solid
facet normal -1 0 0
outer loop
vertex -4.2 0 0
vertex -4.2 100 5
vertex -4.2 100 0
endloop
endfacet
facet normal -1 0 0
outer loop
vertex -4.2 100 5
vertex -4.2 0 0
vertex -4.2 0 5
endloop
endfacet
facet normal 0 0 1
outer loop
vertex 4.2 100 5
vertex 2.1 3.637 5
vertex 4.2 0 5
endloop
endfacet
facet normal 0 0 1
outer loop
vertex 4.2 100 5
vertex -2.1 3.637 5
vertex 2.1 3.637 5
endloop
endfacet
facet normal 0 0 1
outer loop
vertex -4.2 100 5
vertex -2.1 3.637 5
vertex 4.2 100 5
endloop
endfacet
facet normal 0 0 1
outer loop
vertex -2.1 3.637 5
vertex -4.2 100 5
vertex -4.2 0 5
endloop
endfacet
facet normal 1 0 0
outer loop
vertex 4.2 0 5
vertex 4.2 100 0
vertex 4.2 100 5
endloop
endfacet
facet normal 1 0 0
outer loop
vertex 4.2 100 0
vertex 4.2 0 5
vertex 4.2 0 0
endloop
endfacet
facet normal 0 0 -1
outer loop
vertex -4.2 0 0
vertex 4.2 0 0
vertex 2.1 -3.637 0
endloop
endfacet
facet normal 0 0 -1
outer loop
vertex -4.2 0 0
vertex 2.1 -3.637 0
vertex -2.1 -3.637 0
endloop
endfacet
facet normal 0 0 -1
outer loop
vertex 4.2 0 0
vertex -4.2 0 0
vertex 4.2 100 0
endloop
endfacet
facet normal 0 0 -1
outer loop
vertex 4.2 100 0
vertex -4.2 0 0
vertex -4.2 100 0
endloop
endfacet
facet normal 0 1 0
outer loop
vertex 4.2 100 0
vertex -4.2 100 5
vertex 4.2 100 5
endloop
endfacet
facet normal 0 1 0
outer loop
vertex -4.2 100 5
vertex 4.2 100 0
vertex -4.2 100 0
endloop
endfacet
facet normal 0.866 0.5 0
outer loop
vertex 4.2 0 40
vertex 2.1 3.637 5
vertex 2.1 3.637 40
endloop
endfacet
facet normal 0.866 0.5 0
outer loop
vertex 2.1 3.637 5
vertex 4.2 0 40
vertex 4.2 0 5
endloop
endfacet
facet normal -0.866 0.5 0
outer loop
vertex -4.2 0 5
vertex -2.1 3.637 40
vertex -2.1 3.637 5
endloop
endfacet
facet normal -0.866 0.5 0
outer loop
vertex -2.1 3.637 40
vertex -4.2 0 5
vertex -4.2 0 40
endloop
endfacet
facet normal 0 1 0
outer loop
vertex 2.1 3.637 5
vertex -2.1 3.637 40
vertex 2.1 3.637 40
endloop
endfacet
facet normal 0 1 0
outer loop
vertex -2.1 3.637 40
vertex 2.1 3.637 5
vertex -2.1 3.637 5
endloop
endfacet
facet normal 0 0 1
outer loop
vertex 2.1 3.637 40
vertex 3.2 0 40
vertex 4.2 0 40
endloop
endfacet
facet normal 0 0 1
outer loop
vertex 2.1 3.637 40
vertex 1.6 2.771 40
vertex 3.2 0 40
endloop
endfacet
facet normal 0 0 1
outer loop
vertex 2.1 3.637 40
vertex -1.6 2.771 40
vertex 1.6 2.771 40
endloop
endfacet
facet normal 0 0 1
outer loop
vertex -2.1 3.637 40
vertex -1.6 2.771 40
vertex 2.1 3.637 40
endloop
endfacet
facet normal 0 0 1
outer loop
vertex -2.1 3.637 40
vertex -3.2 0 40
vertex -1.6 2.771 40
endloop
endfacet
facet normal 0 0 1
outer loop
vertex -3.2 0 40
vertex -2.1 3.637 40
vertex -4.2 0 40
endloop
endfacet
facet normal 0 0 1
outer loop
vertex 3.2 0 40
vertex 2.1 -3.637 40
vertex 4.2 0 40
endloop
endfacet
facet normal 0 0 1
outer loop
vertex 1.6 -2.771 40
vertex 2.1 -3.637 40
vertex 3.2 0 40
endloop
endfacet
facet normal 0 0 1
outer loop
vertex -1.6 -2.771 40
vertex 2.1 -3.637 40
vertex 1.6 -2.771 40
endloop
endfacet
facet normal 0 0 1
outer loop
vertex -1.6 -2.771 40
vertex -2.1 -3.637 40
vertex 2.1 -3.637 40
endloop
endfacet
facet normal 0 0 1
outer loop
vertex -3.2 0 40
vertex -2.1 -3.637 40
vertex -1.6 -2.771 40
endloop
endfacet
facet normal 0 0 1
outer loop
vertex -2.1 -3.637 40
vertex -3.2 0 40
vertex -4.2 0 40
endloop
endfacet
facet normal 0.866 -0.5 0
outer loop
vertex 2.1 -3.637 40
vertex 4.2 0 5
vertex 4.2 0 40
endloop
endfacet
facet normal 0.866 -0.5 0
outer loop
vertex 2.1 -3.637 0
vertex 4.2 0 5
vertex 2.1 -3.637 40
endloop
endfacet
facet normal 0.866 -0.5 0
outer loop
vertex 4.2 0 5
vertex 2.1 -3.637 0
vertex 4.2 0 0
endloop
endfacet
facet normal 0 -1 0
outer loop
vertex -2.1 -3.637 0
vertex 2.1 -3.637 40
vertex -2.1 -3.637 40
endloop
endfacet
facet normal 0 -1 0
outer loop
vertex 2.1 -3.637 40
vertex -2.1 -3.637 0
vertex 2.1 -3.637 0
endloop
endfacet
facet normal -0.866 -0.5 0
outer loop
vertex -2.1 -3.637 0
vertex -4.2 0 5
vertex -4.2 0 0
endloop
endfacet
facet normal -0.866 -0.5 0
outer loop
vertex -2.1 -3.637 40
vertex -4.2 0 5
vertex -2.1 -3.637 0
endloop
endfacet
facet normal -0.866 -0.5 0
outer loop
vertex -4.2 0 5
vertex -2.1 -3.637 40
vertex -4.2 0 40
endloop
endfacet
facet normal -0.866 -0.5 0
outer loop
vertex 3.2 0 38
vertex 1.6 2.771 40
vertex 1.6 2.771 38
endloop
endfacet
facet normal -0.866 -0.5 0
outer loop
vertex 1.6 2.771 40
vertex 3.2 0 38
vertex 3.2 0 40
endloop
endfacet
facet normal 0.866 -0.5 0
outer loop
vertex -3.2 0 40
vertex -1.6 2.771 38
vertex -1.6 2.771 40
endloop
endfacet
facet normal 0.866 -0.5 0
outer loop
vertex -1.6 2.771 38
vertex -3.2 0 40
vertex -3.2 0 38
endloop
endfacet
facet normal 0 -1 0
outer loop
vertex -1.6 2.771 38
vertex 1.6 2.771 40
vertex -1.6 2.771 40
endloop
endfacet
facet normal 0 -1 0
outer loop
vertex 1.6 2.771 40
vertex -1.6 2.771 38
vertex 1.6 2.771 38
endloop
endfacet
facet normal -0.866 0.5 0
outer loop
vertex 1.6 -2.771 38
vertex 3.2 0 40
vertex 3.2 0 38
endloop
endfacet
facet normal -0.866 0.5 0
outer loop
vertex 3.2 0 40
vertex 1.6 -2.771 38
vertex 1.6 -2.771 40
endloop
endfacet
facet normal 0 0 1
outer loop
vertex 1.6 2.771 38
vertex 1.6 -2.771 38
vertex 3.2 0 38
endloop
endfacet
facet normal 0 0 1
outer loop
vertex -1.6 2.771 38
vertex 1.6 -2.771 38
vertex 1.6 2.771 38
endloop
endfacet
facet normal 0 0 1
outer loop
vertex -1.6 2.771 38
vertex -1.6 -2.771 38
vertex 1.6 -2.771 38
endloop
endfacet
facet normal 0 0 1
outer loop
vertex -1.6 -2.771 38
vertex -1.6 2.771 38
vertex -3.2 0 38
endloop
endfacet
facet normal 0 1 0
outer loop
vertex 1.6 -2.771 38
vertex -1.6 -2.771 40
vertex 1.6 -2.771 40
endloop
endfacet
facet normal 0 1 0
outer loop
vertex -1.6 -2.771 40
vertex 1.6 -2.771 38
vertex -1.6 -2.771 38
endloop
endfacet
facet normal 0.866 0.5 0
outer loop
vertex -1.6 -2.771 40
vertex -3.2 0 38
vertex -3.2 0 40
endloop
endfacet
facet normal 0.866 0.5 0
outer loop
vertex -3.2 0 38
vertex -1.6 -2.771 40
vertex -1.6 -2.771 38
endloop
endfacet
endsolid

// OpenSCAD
d=6.4;
w=0.4*2;
c=0.2;

x=d+c*2+w*2;

difference()
{
    union()
    {
        translate([-x/2,0,0])
        cube([x,100,5]);
        cylinder(d=x, h=40,$fn=6);
    }
    #translate([0,0,40-2])
    cylinder(d=d, h=3,$fn=6);
}
